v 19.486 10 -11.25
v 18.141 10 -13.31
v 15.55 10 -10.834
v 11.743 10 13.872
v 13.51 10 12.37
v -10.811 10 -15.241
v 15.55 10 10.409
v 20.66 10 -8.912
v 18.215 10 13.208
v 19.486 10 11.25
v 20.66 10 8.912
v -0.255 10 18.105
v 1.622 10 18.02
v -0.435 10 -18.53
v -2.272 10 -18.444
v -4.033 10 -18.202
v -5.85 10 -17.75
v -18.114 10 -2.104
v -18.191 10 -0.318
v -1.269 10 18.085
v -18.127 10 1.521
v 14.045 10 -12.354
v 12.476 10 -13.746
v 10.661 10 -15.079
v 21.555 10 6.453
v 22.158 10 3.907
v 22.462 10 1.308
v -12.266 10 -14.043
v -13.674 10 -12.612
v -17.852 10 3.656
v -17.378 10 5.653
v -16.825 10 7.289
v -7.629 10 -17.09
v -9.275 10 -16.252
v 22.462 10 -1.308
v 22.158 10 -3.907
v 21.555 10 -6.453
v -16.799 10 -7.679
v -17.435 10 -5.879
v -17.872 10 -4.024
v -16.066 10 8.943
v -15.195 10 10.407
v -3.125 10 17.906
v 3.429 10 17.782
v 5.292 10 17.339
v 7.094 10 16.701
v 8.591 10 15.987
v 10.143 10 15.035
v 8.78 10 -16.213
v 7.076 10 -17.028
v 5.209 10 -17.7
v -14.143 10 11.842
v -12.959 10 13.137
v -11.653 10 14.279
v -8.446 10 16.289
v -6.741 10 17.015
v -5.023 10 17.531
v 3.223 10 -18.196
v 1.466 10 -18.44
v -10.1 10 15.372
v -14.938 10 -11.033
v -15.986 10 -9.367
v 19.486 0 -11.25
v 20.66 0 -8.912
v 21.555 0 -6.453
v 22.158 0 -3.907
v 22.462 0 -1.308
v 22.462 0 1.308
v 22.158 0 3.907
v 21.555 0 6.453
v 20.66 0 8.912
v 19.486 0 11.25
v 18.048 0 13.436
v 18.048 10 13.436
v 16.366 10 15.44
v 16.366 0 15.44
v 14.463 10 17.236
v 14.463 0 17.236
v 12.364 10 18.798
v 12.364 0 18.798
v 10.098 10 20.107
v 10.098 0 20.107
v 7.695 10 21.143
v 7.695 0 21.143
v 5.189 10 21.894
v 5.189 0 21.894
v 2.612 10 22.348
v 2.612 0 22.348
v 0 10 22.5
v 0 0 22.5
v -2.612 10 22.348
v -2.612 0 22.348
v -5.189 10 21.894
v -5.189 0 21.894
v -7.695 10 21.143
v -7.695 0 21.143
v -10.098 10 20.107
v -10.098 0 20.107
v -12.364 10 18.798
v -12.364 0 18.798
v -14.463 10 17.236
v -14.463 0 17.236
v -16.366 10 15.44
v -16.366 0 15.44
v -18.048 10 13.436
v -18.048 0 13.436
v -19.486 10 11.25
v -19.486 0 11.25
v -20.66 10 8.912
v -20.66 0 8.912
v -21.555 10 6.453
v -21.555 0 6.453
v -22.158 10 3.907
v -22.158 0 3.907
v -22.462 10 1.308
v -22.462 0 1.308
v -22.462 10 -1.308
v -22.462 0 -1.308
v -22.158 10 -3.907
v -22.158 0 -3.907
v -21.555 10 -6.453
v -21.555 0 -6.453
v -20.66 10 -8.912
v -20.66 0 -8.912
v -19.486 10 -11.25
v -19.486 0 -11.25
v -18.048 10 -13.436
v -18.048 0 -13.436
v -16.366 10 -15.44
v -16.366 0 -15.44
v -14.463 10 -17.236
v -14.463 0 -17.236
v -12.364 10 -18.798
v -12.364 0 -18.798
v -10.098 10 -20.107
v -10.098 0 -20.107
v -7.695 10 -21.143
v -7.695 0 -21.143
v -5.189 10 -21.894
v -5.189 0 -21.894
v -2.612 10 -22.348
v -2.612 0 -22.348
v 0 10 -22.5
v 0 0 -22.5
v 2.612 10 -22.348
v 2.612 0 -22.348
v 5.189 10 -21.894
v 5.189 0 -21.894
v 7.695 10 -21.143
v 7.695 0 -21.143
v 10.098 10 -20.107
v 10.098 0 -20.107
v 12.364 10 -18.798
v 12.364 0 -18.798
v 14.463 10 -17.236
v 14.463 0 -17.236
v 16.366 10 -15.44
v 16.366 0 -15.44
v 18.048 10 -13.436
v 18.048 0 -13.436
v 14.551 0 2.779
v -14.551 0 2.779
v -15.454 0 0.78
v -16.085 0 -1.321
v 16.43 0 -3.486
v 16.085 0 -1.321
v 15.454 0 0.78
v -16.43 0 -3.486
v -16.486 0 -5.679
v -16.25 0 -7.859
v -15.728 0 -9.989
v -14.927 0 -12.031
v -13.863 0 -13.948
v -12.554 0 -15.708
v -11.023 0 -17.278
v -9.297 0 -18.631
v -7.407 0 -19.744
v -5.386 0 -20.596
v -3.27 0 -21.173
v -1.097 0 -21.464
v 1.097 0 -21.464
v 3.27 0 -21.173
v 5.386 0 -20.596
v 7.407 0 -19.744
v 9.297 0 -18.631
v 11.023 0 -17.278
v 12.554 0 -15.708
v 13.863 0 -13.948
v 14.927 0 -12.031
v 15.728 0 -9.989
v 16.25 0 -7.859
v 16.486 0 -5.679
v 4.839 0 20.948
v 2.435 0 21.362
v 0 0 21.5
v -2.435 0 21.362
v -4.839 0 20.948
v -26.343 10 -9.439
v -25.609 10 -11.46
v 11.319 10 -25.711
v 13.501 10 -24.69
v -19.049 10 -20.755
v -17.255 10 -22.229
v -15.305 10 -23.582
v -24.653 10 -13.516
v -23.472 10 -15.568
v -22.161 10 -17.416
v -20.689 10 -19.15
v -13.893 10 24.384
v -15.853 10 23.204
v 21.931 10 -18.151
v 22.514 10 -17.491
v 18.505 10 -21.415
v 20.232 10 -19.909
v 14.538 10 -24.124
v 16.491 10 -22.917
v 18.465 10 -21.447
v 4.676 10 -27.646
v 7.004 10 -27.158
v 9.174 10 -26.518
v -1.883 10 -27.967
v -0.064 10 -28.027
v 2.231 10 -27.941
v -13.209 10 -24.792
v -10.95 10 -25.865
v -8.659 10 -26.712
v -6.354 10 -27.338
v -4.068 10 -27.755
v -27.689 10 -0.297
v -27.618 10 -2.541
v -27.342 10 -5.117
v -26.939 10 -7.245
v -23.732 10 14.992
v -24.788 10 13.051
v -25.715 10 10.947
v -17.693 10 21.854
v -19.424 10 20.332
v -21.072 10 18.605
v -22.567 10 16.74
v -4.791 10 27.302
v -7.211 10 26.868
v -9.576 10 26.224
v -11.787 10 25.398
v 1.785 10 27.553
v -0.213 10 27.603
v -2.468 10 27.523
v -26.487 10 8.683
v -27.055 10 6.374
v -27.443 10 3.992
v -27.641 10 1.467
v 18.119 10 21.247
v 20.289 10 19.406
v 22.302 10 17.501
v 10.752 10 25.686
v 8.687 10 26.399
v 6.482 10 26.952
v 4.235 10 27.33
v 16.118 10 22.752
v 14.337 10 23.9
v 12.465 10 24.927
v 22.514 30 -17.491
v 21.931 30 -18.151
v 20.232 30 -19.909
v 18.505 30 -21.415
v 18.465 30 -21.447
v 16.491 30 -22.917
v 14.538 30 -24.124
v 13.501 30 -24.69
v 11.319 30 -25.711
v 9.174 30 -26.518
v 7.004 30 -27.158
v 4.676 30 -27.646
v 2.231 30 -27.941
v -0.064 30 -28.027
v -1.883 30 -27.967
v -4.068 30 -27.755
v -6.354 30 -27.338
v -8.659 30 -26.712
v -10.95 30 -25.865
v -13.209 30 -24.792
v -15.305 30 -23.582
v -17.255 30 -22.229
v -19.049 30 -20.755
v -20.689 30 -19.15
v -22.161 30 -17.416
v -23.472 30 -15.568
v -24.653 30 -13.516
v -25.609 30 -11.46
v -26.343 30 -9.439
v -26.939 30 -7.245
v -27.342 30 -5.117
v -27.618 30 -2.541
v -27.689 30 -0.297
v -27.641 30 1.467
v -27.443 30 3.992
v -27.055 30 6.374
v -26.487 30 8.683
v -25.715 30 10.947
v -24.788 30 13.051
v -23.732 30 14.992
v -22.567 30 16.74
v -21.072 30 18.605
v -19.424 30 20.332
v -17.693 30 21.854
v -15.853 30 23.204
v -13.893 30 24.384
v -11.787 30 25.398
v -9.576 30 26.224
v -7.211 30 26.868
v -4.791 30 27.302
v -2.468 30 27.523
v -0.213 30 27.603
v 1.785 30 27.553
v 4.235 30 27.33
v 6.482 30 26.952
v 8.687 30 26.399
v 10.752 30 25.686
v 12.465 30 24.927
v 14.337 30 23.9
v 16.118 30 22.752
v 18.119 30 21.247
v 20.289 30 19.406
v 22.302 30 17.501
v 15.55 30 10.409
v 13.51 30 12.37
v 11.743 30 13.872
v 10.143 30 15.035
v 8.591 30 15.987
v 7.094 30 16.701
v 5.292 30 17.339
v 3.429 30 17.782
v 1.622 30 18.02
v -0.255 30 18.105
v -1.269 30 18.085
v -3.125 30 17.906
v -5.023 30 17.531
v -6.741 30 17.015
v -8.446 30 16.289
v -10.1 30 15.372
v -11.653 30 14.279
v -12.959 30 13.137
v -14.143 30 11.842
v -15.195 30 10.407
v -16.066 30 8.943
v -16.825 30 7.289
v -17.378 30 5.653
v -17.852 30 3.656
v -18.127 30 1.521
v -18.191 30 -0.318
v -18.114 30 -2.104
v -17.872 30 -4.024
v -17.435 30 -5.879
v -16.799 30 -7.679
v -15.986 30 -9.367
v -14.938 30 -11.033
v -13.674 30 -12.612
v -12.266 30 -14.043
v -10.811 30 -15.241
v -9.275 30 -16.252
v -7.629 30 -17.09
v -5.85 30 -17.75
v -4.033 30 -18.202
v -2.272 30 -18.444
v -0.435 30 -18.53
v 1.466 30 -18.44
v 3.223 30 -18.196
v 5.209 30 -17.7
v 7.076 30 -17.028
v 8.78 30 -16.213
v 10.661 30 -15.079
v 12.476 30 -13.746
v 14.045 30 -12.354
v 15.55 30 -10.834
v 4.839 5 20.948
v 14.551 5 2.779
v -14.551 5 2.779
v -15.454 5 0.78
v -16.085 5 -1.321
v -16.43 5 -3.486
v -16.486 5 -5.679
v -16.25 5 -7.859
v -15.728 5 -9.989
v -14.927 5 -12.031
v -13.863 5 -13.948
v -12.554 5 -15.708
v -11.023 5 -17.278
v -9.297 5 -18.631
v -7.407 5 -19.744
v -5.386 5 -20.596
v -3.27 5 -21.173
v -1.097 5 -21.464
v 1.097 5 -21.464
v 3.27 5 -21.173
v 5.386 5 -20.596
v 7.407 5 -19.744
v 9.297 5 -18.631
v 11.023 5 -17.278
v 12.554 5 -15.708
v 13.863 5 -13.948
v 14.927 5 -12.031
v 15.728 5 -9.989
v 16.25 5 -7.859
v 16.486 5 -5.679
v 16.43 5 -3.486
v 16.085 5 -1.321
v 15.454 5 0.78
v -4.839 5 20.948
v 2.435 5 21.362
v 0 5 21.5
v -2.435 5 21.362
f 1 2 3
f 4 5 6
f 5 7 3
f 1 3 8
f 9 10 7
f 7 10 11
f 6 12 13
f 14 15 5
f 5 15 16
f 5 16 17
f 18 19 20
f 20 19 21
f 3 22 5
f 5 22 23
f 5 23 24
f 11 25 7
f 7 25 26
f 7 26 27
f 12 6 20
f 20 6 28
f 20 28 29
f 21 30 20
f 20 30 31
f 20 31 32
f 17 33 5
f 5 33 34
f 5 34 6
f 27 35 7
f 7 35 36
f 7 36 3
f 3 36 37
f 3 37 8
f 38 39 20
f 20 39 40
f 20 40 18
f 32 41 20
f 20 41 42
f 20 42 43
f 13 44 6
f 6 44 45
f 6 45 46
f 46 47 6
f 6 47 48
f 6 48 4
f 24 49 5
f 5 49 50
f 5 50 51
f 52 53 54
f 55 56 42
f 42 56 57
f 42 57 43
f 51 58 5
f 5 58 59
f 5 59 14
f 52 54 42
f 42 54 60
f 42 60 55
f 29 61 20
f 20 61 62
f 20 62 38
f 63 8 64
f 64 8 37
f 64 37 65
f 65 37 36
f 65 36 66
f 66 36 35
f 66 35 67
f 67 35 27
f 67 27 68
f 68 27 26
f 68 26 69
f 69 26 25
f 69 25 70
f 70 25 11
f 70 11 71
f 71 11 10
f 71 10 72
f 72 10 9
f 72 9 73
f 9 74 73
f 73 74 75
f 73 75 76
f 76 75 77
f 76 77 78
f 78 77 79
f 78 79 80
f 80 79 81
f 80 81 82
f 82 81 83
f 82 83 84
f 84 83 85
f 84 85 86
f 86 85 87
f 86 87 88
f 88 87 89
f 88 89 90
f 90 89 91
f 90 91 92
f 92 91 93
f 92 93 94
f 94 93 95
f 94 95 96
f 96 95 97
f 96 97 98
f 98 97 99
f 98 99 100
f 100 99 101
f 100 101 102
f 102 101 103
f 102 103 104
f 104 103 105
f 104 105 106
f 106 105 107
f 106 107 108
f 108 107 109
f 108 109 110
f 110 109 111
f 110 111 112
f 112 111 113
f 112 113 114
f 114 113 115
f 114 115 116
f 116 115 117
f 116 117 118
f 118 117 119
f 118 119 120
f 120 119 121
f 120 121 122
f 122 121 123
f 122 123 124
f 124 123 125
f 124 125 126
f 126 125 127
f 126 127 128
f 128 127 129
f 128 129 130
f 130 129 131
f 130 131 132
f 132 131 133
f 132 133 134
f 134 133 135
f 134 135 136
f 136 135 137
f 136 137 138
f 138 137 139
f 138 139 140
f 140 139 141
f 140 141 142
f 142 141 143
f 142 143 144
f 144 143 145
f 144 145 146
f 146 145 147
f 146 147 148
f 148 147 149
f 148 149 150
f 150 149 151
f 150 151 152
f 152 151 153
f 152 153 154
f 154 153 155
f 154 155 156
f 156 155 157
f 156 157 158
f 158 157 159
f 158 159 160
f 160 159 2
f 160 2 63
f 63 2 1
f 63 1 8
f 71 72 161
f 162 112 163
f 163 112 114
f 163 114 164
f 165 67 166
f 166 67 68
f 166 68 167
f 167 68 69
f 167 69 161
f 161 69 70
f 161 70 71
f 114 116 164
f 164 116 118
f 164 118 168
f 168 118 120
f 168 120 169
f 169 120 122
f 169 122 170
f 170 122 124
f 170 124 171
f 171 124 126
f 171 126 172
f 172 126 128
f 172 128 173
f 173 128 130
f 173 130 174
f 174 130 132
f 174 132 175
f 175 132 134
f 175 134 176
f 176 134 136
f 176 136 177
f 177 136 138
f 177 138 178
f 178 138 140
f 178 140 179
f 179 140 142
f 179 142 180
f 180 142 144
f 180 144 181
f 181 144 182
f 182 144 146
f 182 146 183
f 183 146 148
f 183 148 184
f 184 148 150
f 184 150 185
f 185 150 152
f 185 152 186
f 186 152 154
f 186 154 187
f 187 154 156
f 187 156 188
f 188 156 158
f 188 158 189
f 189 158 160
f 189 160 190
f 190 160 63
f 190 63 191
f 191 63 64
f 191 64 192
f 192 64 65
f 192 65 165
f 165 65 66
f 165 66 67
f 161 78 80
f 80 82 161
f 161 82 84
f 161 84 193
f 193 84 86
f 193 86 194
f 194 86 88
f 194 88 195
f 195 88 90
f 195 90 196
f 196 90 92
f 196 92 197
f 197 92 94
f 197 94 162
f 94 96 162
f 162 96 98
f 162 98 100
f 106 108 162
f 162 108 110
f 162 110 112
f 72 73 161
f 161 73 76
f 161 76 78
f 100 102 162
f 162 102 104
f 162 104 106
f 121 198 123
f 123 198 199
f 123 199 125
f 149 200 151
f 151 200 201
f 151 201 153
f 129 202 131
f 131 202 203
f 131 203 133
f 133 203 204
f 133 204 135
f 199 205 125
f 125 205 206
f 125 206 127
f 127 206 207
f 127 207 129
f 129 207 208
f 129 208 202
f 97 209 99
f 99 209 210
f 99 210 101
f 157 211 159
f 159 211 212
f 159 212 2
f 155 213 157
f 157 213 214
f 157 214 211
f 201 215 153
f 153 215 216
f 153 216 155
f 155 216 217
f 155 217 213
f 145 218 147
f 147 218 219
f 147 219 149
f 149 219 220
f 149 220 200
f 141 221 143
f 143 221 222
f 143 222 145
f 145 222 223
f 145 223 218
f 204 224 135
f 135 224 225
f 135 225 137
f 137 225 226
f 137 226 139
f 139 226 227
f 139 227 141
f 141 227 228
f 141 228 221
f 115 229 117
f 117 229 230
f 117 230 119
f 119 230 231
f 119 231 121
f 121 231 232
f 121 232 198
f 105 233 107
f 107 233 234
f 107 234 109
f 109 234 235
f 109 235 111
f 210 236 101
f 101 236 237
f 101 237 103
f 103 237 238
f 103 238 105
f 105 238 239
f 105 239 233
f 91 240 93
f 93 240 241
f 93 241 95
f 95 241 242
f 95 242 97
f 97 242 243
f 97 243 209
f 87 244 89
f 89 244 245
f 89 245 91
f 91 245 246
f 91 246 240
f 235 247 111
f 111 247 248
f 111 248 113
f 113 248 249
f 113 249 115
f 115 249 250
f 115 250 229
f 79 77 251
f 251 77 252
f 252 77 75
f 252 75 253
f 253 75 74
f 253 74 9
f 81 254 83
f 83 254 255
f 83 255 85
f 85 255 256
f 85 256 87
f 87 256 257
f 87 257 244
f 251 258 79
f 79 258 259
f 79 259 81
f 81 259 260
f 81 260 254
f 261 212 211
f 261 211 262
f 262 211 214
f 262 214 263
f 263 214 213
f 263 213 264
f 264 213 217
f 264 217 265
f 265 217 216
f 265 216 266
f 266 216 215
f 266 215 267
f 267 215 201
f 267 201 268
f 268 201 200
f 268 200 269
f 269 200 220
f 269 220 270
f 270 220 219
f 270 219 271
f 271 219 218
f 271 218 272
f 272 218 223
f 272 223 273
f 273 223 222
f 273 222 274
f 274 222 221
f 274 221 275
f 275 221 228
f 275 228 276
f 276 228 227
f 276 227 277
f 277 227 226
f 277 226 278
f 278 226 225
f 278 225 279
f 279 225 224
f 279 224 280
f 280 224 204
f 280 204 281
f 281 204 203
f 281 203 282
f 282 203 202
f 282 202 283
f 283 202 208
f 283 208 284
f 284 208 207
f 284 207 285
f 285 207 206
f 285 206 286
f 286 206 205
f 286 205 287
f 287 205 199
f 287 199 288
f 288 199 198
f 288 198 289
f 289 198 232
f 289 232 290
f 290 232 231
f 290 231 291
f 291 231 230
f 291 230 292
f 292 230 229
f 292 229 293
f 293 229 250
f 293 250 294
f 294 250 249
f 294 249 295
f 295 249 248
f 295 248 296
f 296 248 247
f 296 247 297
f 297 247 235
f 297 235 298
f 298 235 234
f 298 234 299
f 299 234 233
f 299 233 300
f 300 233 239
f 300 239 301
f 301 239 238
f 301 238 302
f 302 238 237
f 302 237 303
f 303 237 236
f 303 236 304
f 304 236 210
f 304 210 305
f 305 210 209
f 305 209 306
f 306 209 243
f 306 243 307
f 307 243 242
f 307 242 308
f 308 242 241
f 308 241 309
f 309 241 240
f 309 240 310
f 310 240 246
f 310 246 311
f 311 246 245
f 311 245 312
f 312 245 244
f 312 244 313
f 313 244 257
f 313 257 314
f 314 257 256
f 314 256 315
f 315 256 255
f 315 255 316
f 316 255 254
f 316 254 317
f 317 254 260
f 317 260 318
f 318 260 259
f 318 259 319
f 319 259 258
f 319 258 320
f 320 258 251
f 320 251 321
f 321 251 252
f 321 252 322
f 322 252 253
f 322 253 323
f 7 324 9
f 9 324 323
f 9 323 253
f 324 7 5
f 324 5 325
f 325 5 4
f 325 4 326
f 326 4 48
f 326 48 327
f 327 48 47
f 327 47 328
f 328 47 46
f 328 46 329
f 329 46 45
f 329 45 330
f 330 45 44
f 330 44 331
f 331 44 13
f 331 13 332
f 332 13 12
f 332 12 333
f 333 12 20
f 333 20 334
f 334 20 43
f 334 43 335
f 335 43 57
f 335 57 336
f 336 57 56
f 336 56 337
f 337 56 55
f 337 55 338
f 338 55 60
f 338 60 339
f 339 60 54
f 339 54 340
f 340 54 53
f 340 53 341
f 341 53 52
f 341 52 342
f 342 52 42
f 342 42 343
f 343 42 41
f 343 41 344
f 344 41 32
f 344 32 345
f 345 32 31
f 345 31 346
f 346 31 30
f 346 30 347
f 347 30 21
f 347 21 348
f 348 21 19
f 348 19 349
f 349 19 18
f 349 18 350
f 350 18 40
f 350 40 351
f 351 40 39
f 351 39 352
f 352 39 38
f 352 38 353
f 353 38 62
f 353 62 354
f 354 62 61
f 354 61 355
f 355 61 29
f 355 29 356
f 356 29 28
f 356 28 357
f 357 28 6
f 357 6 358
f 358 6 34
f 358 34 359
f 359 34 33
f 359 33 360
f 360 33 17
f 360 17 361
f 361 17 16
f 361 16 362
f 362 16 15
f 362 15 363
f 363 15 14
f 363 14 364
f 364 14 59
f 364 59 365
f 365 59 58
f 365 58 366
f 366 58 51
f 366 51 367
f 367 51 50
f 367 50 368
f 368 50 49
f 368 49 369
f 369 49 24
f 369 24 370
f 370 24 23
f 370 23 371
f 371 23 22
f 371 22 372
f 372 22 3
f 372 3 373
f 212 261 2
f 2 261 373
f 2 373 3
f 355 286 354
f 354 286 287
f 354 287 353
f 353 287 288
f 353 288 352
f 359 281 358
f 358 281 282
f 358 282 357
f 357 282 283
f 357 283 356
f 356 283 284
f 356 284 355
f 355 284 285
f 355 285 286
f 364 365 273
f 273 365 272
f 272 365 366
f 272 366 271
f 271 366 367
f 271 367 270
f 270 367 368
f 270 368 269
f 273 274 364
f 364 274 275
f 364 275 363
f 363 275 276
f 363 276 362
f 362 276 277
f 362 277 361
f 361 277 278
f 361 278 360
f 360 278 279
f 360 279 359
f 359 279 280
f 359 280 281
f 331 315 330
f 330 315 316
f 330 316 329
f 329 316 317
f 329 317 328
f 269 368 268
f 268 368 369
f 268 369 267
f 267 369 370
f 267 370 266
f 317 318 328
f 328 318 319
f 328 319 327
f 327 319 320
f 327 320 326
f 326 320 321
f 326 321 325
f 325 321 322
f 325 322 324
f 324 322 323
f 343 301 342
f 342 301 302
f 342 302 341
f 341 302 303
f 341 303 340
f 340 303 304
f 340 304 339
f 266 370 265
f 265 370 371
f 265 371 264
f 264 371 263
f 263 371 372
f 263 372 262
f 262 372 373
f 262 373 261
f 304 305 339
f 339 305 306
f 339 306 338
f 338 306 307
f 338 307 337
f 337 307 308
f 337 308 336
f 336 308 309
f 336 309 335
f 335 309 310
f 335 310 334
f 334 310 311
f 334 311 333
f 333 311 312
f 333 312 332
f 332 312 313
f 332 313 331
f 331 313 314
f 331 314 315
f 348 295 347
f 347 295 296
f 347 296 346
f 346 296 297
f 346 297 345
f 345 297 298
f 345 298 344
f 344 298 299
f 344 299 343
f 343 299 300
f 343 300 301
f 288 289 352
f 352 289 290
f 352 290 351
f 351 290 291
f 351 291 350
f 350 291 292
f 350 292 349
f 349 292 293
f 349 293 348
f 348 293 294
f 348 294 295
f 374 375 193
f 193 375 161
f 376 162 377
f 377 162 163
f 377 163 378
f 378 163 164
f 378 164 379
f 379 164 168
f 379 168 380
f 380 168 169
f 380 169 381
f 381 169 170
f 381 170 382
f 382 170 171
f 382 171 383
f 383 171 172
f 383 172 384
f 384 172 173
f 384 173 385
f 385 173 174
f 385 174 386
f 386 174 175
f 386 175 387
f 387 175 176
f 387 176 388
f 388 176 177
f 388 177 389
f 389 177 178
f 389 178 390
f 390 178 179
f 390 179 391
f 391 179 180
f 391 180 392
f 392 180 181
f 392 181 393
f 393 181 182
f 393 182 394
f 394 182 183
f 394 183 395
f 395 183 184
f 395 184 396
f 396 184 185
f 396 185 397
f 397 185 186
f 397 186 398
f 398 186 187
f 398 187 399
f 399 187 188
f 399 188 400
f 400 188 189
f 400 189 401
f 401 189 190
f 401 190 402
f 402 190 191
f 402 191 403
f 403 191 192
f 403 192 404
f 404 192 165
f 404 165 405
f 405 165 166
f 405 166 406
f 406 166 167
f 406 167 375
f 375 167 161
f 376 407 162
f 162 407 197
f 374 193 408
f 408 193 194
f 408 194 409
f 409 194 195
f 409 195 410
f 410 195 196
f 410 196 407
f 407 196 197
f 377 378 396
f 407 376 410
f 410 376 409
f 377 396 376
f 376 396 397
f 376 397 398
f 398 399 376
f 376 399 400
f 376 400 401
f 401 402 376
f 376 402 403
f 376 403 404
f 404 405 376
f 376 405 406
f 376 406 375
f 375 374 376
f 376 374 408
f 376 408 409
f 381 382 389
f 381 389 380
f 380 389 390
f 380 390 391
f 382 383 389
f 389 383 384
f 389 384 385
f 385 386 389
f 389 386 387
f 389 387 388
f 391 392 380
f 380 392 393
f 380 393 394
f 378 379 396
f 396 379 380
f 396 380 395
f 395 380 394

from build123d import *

# Parameters (mm, degrees)
SKETCH1_R           = 22.5
BOSS_EXTRUDE1_DEPTH = 10
BOSS_EXTRUDE2_DEPTH = 20
SKETCH3_R           = 16.5
CUT_EXTRUDE2_DEPTH  = 5


with BuildPart() as part:
    # Sketch1 → Boss-Extrude1 (new body)
    with BuildSketch(Plane(origin=(0, 0, 0), x_dir=(1, 0, 0), z_dir=(0, 1, 0))):
        with Locations(Location((0, 0, 0), (0, 0, 270))):
            Circle(SKETCH1_R)
    extrude(amount=BOSS_EXTRUDE1_DEPTH)

    # Sketch2 → Boss-Extrude2 (add)
    with BuildSketch(Plane(origin=(0, 10, 0), x_dir=(1, 0, 0), z_dir=(0, 1, 0))):
        with BuildLine():
            Line((22.514356491, 17.490690637), (15.549963462, 10.833706128))
            add(Edge.make_bspline(
                [(15.549963462, 10.833706128), (14.959186907, 11.444570075), (13.805215213, 12.637778742), (11.945732542, 14.217481862), (10.01193827, 15.533950672), (8.041450503, 16.642672321), (5.998825878, 17.481499268), (3.907682699, 18.092766593), (1.754668401, 18.465433177), (0.297591136, 18.508072829), (-0.435279594, 18.529519429)],
                knots=[0, 0, 0, 0, 1.115251505, 2.178435587, 3.19620269, 4.182487026, 5.141301733, 6.088180966, 7.038406374, 8, 8, 8, 8], degree=3))
            add(Edge.make_bspline(
                [(-0.435279594, 18.529519429), (-1.047315714, 18.512575866), (-2.255101565, 18.47913961), (-4.028447695, 18.234018873), (-5.724744916, 17.817180392), (-7.349799924, 17.242699751), (-8.898830923, 16.499352293), (-10.37508565, 15.587713348), (-11.77492446, 14.516016314), (-13.079856293, 13.2898062), (-14.273562073, 11.950079505), (-15.328277138, 10.520594316), (-16.211770191, 9.004625506), (-16.936838569, 7.417525692), (-17.501638807, 5.75194899), (-17.904977137, 4.009016732), (-18.138257248, 2.186653221), (-18.173075868, 0.947824086), (-18.190771715, 0.318214675)],
                knots=[0, 0, 0, 0, 1.035432265, 2.043311493, 3.022114605, 3.98653278, 4.95457646, 5.923598177, 6.917315552, 7.932509744, 8.948865224, 9.949768934, 10.933144597, 11.912367597, 12.897413939, 13.903909035, 14.934704909, 16, 16, 16, 16], degree=3))
            add(Edge.make_bspline(
                [(-18.190771715, 0.318214675), (-18.185671973, -0.123689261), (-18.175620278, -0.994691), (-18.065586703, -2.283144309), (-17.888406699, -3.533248623), (-17.631983338, -4.743110368), (-17.311323403, -5.91377802), (-16.935116286, -7.055350871), (-16.463169991, -8.152054953), (-15.939302484, -9.216627772), (-15.330050609, -10.220021127), (-14.673164696, -11.176839965), (-13.960879171, -12.082394056), (-13.188580519, -12.932981467), (-12.345399597, -13.715309421), (-11.453129512, -14.452903451), (-10.496718903, -15.127299081), (-9.496034842, -15.75542101), (-8.442432682, -16.301075874), (-7.364499094, -16.795333764), (-6.245890431, -17.196744657), (-5.100226426, -17.520318456), (-3.931601279, -17.795469647), (-2.72858475, -17.964888691), (-1.501605485, -18.09318775), (-0.67237345, -18.101109467), (-0.255074599, -18.105095955)],
                knots=[0, 0, 0, 0, 1.103660481, 2.175337485, 3.227646561, 4.255952547, 5.262355991, 6.258840057, 7.255597736, 8.242457506, 9.22035537, 10.185017736, 11.140346927, 12.096287581, 13.051739095, 14.01125915, 14.986044842, 15.97314143, 16.960198552, 17.947847494, 18.933482797, 19.925264591, 20.920966487, 21.929612487, 22.958107872, 24, 24, 24, 24], degree=3))
            add(Edge.make_bspline(
                [(-0.255074599, -18.105095955), (0.452735966, -18.084622318), (1.843399669, -18.044396943), (3.884398613, -17.729840213), (5.829267273, -17.212412193), (7.383208025, -16.601359767), (8.600679559, -15.997937564), (9.52752264, -15.439801741), (10.485950624, -14.815465543), (11.460044841, -14.101365846), (12.460761919, -13.306072133), (13.470436894, -12.412165987), (14.514917625, -11.449082455), (15.199146599, -10.761710818), (15.549963462, -10.409282654)],
                knots=[0, 0, 0, 0, 1.404581149, 2.759636711, 4.088442092, 5.392261763, 6.066678138, 6.783632037, 7.538459478, 8.336747902, 9.180226004, 10.074962426, 11.012997595, 12, 12, 12, 12], degree=3))
            Line((15.549963462, -10.409282654), (22.302350615, -17.500879208))
            add(Edge.make_bspline(
                [(22.302350615, -17.500879208), (21.827694143, -17.95914513), (20.901266219, -18.853582206), (19.503775414, -20.12359939), (18.108043407, -21.264851013), (16.747788174, -22.318759505), (15.400727318, -23.254621954), (14.067003691, -24.073373015), (12.761715627, -24.795720088), (11.457758402, -25.409481144), (10.147018122, -25.930628026), (8.798420406, -26.379301284), (7.407842465, -26.75886272), (5.966791283, -27.06511895), (4.488708107, -27.310695102), (2.959760044, -27.476457584), (1.389641377, -27.587894186), (0.324605561, -27.597907688), (-0.212673424, -27.602959203)],
                knots=[0, 0, 0, 0, 1.244526981, 2.429050516, 3.560637417, 4.644440555, 5.67424972, 6.652764056, 7.595344123, 8.486817594, 9.369275933, 10.254498637, 11.166417451, 12.086725134, 13.032340136, 13.991389299, 14.986715468, 16, 16, 16, 16], degree=3))
            add(Edge.make_bspline(
                [(-0.212673424, -27.602959203), (-1.199588367, -27.577800773), (-3.130706581, -27.528572719), (-5.960709972, -27.163826165), (-8.649137226, -26.552334995), (-11.202528785, -25.687517816), (-13.620072728, -24.582754401), (-15.901150575, -23.22836633), (-18.042085734, -21.627951998), (-20.025583664, -19.800269815), (-21.819751941, -17.781748276), (-23.405588922, -15.614409906), (-24.717393333, -13.287603029), (-25.806612801, -10.835702017), (-26.658368101, -8.247517893), (-27.257859435, -5.520251029), (-27.627561366, -2.656534771), (-27.668007283, -0.700550553), (-27.688634962, 0.297014088)],
                knots=[0, 0, 0, 0, 1.078019885, 2.10938526, 3.111377082, 4.085535484, 5.04941344, 6.010039228, 6.978205633, 7.964457913, 8.951525778, 9.924444315, 10.892603023, 11.863865945, 12.85144698, 13.863884204, 14.910567087, 16, 16, 16, 16], degree=3))
            add(Edge.make_bspline(
                [(-27.688634962, 0.297014088), (-27.679918705, 0.947617235), (-27.662645212, 2.23695366), (-27.481099205, 4.136250673), (-27.228013516, 5.987725528), (-26.826516082, 7.772153781), (-26.342550525, 9.513574972), (-25.74067577, 11.193061886), (-25.021853092, 12.815441538), (-24.20925184, 14.383429889), (-23.289964174, 15.886754934), (-22.263018932, 17.312500744), (-21.154853689, 18.671673812), (-19.93884104, 19.946242185), (-18.632651242, 21.14739682), (-17.230386997, 22.268628432), (-15.740482224, 23.326016746), (-14.158904306, 24.292294284), (-12.516379087, 25.166343676), (-10.833623133, 25.937292571), (-9.114770779, 26.581628309), (-7.367089489, 27.116081037), (-5.583195332, 27.515012207), (-3.775821291, 27.816990234), (-1.929588783, 27.985797881), (-0.690003597, 28.013432771), (-0.064269311, 28.027382677)],
                knots=[0, 0, 0, 0, 1.071919942, 2.124283339, 3.142214191, 4.149696895, 5.136002878, 6.119640489, 7.086990633, 8.058538607, 9.028339693, 9.988281803, 10.952401235, 11.916291999, 12.888973767, 13.874849856, 14.873389453, 15.898127285, 16.927174885, 17.938320013, 18.946391617, 19.950418109, 20.947802303, 21.956882652, 22.968648068, 24, 24, 24, 24], degree=3))
            add(Edge.make_bspline(
                [(-0.064269311, 28.027382677), (0.469546195, 28.019386243), (1.53162701, 28.003476514), (3.113243568, 27.870851616), (4.682211098, 27.662565556), (6.232912213, 27.348306247), (7.776439114, 26.975240735), (9.292508128, 26.486762906), (10.805036063, 25.942262312), (12.290301164, 25.291423032), (13.750376645, 24.580973168), (15.151057936, 23.774941998), (16.515862348, 22.922931778), (17.814546634, 21.974516811), (19.071437948, 20.964097872), (20.279963894, 19.886960788), (21.429518951, 18.725146522), (22.150915876, 17.904256161), (22.514356491, 17.490690637)],
                knots=[0, 0, 0, 0, 0.996412454, 1.982464992, 2.961075852, 3.949442424, 4.934965278, 5.923860011, 6.921385422, 7.934793307, 8.949617135, 9.951082467, 10.950285876, 11.951772932, 12.951063433, 13.960125323, 14.972308753, 16, 16, 16, 16], degree=3))
        make_face()
    extrude(amount=BOSS_EXTRUDE2_DEPTH)

    # Sketch3 → Cut-Extrude2 (cut)
    with BuildSketch(Plane.XZ):
        with BuildLine():
            ThreePointArc((-14.551420086, 2.778571429), (0, 11.5), (14.551420086, 2.778571429))
            Line((14.551420086, 2.778571429), (4.83856504, 20.948467447))
            ThreePointArc((4.83856504, 20.948467447), (0, 21.5), (-4.83856504, 20.948467447))
            Line((-4.83856504, 20.948467447), (-14.551420086, 2.778571429))
        make_face()
        with Locations((0, -5)):
            Circle(SKETCH3_R)
    extrude(amount=-CUT_EXTRUDE2_DEPTH, mode=Mode.SUBTRACT)


solid = part.part
